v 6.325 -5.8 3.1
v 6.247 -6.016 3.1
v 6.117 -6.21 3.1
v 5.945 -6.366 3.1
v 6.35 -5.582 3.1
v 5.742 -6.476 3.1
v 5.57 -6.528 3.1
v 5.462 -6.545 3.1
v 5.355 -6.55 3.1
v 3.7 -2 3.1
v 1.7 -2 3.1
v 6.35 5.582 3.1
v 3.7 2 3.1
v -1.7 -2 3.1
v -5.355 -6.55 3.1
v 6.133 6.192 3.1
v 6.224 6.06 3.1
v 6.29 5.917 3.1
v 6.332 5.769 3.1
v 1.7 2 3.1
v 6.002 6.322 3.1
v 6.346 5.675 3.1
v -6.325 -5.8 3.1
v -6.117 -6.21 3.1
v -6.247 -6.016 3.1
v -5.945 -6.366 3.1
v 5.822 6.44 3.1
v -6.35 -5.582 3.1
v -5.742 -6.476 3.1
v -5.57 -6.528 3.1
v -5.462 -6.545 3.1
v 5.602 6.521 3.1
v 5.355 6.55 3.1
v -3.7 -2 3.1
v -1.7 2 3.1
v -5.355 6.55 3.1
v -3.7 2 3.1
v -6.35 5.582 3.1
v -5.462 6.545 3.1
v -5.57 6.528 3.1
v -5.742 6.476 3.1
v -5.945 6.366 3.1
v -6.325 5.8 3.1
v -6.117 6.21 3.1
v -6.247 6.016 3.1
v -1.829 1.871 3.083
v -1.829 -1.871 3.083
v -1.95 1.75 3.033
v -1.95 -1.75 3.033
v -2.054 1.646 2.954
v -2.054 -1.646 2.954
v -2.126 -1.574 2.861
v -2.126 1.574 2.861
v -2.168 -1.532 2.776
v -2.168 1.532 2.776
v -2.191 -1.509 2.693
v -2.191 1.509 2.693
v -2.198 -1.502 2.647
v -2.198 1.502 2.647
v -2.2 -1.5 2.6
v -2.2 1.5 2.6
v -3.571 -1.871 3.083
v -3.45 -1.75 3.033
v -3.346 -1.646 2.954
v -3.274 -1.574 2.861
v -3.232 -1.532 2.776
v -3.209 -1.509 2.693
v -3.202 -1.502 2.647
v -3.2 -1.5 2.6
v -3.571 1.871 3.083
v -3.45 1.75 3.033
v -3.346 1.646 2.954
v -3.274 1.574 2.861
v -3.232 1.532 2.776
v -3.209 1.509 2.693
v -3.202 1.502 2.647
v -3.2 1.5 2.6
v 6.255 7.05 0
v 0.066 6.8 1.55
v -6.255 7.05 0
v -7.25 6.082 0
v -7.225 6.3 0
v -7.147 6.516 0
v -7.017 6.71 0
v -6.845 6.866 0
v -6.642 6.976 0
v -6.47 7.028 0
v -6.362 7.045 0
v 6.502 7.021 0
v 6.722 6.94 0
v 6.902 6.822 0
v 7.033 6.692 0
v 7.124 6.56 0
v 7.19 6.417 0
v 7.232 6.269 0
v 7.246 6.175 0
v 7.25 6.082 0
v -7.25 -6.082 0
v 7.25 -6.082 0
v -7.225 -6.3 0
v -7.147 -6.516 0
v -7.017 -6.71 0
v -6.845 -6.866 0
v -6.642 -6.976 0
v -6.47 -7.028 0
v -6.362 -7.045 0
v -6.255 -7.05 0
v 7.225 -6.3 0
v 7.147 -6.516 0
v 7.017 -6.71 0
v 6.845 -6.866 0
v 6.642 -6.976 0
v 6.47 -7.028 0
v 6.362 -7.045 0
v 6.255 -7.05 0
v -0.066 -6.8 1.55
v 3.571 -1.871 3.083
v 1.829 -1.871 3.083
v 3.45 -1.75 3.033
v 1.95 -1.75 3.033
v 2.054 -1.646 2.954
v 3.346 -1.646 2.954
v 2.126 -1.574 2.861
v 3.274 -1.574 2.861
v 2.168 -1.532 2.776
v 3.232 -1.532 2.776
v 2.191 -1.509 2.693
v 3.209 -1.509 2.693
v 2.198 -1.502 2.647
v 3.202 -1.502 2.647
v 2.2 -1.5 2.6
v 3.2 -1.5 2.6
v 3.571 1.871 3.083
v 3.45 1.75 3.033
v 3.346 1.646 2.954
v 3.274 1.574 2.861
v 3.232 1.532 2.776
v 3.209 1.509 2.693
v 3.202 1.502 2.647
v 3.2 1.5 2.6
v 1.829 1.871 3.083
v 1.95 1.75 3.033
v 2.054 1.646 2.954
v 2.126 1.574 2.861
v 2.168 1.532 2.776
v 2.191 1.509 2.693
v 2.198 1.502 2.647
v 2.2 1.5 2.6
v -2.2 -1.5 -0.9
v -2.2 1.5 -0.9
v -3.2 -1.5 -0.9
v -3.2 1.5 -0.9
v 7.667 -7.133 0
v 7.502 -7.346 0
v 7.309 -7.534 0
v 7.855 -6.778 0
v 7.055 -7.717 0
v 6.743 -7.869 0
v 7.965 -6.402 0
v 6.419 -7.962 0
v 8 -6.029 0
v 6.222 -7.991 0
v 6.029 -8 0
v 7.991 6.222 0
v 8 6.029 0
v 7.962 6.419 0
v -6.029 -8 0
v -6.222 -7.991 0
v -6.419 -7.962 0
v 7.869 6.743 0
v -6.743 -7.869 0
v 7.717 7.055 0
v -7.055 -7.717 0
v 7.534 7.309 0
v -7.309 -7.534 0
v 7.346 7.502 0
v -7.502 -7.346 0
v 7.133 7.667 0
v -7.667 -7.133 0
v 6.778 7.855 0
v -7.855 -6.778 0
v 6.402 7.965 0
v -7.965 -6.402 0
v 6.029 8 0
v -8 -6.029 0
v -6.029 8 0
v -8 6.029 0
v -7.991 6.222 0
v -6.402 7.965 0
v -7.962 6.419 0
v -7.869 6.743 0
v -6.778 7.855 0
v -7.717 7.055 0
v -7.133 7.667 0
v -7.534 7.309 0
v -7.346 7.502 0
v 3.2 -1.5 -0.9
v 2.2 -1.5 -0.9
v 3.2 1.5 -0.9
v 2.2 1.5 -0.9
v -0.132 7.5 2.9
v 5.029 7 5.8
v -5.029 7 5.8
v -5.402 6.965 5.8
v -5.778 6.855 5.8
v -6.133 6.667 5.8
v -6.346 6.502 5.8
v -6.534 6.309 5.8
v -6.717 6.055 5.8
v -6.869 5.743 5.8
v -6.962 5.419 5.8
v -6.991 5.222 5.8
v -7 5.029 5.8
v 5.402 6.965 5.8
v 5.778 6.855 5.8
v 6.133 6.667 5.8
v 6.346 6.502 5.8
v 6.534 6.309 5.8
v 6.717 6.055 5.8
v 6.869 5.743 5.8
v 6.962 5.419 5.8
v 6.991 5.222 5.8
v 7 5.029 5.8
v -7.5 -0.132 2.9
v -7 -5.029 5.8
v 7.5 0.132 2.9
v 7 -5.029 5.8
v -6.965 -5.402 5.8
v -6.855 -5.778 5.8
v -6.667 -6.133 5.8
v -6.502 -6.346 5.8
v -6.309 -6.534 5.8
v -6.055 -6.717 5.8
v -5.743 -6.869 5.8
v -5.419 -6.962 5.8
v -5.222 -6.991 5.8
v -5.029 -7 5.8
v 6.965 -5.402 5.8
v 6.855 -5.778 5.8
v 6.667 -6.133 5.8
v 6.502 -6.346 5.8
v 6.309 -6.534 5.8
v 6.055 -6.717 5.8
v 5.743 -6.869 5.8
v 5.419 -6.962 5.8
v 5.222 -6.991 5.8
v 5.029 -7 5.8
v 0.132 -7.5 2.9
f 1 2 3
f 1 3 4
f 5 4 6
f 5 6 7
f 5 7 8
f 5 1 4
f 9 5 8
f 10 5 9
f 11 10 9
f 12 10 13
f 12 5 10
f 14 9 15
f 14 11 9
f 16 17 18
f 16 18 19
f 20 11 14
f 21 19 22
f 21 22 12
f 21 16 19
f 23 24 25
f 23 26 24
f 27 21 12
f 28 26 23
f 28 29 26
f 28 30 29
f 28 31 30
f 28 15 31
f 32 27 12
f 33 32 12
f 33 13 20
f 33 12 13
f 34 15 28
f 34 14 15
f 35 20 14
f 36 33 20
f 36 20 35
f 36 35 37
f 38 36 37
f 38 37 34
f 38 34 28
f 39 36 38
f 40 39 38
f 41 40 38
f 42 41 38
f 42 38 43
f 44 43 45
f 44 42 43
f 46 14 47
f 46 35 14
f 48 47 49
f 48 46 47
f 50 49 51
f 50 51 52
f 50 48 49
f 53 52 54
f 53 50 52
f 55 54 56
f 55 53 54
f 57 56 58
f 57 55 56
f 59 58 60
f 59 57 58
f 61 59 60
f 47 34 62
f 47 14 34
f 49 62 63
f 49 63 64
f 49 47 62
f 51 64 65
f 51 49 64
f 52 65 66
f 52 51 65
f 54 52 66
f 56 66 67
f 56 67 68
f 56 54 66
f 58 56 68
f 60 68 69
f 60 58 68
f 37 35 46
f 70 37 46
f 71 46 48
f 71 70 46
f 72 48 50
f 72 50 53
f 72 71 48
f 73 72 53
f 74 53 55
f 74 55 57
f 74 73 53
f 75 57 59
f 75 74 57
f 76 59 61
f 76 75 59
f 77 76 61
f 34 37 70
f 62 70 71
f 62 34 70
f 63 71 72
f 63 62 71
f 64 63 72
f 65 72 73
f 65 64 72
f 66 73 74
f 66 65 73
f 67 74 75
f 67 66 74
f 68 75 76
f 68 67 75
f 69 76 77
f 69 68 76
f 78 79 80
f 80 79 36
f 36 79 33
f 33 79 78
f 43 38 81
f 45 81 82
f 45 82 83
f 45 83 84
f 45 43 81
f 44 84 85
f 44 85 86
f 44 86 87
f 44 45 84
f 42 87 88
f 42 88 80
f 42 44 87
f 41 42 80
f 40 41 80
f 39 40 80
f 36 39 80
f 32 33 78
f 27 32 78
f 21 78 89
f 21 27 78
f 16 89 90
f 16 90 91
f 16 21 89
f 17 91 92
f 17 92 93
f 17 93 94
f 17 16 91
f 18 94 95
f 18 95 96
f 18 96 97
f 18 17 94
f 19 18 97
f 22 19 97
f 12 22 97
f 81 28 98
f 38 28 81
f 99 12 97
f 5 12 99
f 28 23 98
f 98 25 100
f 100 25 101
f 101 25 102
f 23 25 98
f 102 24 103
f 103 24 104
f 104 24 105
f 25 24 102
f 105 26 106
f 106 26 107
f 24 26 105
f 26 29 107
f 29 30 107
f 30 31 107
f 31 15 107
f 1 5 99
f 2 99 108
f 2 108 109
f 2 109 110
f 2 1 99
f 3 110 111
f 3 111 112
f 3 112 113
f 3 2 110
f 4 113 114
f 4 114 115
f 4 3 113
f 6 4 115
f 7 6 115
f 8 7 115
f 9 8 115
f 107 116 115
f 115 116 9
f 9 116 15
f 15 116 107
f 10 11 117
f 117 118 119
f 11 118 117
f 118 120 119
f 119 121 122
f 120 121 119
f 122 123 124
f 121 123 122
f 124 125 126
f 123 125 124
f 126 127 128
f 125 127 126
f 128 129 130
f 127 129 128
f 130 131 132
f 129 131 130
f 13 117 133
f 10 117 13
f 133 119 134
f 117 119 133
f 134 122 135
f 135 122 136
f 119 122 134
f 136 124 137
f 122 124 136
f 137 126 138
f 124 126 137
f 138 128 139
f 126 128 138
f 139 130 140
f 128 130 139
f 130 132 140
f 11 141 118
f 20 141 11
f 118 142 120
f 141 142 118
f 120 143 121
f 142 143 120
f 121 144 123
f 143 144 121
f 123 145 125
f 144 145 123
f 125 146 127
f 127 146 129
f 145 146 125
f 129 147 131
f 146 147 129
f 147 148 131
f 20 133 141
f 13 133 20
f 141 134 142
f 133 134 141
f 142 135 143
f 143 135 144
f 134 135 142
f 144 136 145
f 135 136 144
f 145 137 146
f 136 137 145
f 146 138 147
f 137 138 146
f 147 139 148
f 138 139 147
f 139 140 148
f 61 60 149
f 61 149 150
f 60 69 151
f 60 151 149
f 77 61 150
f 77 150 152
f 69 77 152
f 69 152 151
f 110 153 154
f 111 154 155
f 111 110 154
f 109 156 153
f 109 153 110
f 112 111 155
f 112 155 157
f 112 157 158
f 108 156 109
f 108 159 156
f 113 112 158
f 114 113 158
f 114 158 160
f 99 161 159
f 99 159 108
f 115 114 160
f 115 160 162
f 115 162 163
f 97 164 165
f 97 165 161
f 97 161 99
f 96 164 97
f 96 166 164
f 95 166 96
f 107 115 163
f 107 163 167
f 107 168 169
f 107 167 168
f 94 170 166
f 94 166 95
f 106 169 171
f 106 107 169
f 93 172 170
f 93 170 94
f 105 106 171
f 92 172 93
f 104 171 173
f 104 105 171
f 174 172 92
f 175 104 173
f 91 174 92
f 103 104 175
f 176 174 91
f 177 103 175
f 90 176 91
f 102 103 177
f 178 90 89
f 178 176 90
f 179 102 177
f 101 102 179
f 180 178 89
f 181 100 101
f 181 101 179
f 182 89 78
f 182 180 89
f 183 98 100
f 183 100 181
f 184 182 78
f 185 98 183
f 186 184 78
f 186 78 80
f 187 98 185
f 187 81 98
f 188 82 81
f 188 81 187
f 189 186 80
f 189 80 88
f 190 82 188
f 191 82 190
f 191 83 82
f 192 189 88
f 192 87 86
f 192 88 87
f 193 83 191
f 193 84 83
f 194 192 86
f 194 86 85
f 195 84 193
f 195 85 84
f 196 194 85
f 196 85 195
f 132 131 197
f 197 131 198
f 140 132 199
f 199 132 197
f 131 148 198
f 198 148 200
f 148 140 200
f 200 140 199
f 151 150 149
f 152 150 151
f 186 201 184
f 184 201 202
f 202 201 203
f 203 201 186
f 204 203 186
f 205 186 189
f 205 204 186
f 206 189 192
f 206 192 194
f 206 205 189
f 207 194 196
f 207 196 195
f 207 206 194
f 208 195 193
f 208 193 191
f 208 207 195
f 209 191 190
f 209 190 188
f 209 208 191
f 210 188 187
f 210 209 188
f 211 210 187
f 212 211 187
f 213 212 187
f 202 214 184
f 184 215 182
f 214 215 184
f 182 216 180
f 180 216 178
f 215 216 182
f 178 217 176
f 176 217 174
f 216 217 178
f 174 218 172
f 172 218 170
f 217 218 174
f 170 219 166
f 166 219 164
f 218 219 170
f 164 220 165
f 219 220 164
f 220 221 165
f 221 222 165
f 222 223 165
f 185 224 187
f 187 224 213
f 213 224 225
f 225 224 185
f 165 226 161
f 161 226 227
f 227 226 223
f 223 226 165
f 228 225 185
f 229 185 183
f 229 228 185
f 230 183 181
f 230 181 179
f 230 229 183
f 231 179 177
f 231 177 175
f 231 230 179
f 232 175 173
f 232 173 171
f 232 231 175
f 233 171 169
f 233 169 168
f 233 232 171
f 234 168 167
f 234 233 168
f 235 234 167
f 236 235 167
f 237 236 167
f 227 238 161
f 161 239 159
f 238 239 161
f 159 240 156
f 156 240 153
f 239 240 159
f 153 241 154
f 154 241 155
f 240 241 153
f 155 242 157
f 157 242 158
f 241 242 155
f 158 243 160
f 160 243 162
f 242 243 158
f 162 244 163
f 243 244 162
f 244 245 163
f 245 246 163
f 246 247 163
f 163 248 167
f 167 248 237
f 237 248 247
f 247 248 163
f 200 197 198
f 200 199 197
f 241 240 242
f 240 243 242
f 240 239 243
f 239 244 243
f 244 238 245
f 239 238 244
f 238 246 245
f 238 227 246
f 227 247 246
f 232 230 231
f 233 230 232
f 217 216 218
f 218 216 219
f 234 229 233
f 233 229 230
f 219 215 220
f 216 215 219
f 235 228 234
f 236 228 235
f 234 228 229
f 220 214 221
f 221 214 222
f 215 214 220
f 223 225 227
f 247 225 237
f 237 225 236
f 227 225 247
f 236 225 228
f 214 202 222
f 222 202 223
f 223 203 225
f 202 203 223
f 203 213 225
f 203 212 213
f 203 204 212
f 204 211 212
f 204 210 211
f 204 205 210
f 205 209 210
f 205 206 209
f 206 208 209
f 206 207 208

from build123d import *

# Parameters (mm, degrees)
SKETCH003_W = 16
SKETCH003_H = 16
SKETCH004_W = 14
SKETCH004_H = 14
SKETCH_W    = 14.5
SKETCH_H    = 14.1
SKETCH005_W = 12.7
SKETCH005_H = 13.1
SKETCH006_W = 1
SKETCH006_H = 3
PAD_DEPTH   = 4
FILLET_R    = 2
FILLET001_R = 1
FILLET002_R = 0.5


with BuildPart() as part:
    # Sketch003 → AdditiveLoft section 0
    with BuildSketch(Plane.XY):
        Rectangle(SKETCH003_W, SKETCH003_H)
    # Sketch004 → AdditiveLoft section 1
    with BuildSketch(Plane.XY.offset(5.8)):
        Rectangle(SKETCH004_W, SKETCH004_H)
    loft()

    # Sketch (on Face1 of AdditiveLoft) → SubtractiveLoft section 0
    with BuildSketch(Plane(origin=(0, 0, 0), x_dir=(1, 0, 0), z_dir=(0, 0, -1))):
        Rectangle(SKETCH_W, SKETCH_H)
    # Sketch005 → SubtractiveLoft section 1
    with BuildSketch(Plane.XY.offset(3.1)):
        Rectangle(SKETCH005_W, SKETCH005_H)
    loft(mode=Mode.SUBTRACT)

    # Sketch006 (on Face11 of SubtractiveLoft) → Pad (new body)
    with BuildSketch(Plane(origin=(0, 0, 3.1), x_dir=(1, 0, 0), z_dir=(0, 0, -1))):
        with Locations((-2.7, 0)):
            Rectangle(SKETCH006_W, SKETCH006_H)
    pad = extrude(amount=PAD_DEPTH)

    # Mirrored: Pad across Sketch006 V_Axis
    add(pad.mirror(Plane(origin=(0, 0, 3.1), x_dir=(0, 0, -1), z_dir=(1, 0, 0))))

    # Fillet
    fillet_edges = [part.edges().sort_by_distance(p)[0] for p in [
        (-7.5, -7.5, 2.9),
        (-7.5, 7.5, 2.9),
        (7.5, 7.5, 2.9),
        (7.5, -7.5, 2.9),
    ]]
    fillet(fillet_edges, radius=FILLET_R)

    # Fillet001
    fillet001_edges = [part.edges().sort_by_distance(p)[0] for p in [
        (-6.8, -6.8, 1.55),
        (-6.8, 6.8, 1.55),
        (6.8, -6.8, 1.55),
        (6.8, 6.8, 1.55),
    ]]
    fillet(fillet001_edges, radius=FILLET001_R)

    # Fillet002
    fillet002_edges = [part.edges().sort_by_distance(p)[0] for p in [
        (-2.2, 0, 3.1),
        (-2.7, -1.5, 3.1),
        (2.7, -1.5, 3.1),
        (3.2, 0, 3.1),
        (2.7, 1.5, 3.1),
        (-2.7, 1.5, 3.1),
        (2.2, 0, 3.1),
        (-3.2, 0, 3.1),
    ]]
    fillet(fillet002_edges, radius=FILLET002_R)


solid = part.part
